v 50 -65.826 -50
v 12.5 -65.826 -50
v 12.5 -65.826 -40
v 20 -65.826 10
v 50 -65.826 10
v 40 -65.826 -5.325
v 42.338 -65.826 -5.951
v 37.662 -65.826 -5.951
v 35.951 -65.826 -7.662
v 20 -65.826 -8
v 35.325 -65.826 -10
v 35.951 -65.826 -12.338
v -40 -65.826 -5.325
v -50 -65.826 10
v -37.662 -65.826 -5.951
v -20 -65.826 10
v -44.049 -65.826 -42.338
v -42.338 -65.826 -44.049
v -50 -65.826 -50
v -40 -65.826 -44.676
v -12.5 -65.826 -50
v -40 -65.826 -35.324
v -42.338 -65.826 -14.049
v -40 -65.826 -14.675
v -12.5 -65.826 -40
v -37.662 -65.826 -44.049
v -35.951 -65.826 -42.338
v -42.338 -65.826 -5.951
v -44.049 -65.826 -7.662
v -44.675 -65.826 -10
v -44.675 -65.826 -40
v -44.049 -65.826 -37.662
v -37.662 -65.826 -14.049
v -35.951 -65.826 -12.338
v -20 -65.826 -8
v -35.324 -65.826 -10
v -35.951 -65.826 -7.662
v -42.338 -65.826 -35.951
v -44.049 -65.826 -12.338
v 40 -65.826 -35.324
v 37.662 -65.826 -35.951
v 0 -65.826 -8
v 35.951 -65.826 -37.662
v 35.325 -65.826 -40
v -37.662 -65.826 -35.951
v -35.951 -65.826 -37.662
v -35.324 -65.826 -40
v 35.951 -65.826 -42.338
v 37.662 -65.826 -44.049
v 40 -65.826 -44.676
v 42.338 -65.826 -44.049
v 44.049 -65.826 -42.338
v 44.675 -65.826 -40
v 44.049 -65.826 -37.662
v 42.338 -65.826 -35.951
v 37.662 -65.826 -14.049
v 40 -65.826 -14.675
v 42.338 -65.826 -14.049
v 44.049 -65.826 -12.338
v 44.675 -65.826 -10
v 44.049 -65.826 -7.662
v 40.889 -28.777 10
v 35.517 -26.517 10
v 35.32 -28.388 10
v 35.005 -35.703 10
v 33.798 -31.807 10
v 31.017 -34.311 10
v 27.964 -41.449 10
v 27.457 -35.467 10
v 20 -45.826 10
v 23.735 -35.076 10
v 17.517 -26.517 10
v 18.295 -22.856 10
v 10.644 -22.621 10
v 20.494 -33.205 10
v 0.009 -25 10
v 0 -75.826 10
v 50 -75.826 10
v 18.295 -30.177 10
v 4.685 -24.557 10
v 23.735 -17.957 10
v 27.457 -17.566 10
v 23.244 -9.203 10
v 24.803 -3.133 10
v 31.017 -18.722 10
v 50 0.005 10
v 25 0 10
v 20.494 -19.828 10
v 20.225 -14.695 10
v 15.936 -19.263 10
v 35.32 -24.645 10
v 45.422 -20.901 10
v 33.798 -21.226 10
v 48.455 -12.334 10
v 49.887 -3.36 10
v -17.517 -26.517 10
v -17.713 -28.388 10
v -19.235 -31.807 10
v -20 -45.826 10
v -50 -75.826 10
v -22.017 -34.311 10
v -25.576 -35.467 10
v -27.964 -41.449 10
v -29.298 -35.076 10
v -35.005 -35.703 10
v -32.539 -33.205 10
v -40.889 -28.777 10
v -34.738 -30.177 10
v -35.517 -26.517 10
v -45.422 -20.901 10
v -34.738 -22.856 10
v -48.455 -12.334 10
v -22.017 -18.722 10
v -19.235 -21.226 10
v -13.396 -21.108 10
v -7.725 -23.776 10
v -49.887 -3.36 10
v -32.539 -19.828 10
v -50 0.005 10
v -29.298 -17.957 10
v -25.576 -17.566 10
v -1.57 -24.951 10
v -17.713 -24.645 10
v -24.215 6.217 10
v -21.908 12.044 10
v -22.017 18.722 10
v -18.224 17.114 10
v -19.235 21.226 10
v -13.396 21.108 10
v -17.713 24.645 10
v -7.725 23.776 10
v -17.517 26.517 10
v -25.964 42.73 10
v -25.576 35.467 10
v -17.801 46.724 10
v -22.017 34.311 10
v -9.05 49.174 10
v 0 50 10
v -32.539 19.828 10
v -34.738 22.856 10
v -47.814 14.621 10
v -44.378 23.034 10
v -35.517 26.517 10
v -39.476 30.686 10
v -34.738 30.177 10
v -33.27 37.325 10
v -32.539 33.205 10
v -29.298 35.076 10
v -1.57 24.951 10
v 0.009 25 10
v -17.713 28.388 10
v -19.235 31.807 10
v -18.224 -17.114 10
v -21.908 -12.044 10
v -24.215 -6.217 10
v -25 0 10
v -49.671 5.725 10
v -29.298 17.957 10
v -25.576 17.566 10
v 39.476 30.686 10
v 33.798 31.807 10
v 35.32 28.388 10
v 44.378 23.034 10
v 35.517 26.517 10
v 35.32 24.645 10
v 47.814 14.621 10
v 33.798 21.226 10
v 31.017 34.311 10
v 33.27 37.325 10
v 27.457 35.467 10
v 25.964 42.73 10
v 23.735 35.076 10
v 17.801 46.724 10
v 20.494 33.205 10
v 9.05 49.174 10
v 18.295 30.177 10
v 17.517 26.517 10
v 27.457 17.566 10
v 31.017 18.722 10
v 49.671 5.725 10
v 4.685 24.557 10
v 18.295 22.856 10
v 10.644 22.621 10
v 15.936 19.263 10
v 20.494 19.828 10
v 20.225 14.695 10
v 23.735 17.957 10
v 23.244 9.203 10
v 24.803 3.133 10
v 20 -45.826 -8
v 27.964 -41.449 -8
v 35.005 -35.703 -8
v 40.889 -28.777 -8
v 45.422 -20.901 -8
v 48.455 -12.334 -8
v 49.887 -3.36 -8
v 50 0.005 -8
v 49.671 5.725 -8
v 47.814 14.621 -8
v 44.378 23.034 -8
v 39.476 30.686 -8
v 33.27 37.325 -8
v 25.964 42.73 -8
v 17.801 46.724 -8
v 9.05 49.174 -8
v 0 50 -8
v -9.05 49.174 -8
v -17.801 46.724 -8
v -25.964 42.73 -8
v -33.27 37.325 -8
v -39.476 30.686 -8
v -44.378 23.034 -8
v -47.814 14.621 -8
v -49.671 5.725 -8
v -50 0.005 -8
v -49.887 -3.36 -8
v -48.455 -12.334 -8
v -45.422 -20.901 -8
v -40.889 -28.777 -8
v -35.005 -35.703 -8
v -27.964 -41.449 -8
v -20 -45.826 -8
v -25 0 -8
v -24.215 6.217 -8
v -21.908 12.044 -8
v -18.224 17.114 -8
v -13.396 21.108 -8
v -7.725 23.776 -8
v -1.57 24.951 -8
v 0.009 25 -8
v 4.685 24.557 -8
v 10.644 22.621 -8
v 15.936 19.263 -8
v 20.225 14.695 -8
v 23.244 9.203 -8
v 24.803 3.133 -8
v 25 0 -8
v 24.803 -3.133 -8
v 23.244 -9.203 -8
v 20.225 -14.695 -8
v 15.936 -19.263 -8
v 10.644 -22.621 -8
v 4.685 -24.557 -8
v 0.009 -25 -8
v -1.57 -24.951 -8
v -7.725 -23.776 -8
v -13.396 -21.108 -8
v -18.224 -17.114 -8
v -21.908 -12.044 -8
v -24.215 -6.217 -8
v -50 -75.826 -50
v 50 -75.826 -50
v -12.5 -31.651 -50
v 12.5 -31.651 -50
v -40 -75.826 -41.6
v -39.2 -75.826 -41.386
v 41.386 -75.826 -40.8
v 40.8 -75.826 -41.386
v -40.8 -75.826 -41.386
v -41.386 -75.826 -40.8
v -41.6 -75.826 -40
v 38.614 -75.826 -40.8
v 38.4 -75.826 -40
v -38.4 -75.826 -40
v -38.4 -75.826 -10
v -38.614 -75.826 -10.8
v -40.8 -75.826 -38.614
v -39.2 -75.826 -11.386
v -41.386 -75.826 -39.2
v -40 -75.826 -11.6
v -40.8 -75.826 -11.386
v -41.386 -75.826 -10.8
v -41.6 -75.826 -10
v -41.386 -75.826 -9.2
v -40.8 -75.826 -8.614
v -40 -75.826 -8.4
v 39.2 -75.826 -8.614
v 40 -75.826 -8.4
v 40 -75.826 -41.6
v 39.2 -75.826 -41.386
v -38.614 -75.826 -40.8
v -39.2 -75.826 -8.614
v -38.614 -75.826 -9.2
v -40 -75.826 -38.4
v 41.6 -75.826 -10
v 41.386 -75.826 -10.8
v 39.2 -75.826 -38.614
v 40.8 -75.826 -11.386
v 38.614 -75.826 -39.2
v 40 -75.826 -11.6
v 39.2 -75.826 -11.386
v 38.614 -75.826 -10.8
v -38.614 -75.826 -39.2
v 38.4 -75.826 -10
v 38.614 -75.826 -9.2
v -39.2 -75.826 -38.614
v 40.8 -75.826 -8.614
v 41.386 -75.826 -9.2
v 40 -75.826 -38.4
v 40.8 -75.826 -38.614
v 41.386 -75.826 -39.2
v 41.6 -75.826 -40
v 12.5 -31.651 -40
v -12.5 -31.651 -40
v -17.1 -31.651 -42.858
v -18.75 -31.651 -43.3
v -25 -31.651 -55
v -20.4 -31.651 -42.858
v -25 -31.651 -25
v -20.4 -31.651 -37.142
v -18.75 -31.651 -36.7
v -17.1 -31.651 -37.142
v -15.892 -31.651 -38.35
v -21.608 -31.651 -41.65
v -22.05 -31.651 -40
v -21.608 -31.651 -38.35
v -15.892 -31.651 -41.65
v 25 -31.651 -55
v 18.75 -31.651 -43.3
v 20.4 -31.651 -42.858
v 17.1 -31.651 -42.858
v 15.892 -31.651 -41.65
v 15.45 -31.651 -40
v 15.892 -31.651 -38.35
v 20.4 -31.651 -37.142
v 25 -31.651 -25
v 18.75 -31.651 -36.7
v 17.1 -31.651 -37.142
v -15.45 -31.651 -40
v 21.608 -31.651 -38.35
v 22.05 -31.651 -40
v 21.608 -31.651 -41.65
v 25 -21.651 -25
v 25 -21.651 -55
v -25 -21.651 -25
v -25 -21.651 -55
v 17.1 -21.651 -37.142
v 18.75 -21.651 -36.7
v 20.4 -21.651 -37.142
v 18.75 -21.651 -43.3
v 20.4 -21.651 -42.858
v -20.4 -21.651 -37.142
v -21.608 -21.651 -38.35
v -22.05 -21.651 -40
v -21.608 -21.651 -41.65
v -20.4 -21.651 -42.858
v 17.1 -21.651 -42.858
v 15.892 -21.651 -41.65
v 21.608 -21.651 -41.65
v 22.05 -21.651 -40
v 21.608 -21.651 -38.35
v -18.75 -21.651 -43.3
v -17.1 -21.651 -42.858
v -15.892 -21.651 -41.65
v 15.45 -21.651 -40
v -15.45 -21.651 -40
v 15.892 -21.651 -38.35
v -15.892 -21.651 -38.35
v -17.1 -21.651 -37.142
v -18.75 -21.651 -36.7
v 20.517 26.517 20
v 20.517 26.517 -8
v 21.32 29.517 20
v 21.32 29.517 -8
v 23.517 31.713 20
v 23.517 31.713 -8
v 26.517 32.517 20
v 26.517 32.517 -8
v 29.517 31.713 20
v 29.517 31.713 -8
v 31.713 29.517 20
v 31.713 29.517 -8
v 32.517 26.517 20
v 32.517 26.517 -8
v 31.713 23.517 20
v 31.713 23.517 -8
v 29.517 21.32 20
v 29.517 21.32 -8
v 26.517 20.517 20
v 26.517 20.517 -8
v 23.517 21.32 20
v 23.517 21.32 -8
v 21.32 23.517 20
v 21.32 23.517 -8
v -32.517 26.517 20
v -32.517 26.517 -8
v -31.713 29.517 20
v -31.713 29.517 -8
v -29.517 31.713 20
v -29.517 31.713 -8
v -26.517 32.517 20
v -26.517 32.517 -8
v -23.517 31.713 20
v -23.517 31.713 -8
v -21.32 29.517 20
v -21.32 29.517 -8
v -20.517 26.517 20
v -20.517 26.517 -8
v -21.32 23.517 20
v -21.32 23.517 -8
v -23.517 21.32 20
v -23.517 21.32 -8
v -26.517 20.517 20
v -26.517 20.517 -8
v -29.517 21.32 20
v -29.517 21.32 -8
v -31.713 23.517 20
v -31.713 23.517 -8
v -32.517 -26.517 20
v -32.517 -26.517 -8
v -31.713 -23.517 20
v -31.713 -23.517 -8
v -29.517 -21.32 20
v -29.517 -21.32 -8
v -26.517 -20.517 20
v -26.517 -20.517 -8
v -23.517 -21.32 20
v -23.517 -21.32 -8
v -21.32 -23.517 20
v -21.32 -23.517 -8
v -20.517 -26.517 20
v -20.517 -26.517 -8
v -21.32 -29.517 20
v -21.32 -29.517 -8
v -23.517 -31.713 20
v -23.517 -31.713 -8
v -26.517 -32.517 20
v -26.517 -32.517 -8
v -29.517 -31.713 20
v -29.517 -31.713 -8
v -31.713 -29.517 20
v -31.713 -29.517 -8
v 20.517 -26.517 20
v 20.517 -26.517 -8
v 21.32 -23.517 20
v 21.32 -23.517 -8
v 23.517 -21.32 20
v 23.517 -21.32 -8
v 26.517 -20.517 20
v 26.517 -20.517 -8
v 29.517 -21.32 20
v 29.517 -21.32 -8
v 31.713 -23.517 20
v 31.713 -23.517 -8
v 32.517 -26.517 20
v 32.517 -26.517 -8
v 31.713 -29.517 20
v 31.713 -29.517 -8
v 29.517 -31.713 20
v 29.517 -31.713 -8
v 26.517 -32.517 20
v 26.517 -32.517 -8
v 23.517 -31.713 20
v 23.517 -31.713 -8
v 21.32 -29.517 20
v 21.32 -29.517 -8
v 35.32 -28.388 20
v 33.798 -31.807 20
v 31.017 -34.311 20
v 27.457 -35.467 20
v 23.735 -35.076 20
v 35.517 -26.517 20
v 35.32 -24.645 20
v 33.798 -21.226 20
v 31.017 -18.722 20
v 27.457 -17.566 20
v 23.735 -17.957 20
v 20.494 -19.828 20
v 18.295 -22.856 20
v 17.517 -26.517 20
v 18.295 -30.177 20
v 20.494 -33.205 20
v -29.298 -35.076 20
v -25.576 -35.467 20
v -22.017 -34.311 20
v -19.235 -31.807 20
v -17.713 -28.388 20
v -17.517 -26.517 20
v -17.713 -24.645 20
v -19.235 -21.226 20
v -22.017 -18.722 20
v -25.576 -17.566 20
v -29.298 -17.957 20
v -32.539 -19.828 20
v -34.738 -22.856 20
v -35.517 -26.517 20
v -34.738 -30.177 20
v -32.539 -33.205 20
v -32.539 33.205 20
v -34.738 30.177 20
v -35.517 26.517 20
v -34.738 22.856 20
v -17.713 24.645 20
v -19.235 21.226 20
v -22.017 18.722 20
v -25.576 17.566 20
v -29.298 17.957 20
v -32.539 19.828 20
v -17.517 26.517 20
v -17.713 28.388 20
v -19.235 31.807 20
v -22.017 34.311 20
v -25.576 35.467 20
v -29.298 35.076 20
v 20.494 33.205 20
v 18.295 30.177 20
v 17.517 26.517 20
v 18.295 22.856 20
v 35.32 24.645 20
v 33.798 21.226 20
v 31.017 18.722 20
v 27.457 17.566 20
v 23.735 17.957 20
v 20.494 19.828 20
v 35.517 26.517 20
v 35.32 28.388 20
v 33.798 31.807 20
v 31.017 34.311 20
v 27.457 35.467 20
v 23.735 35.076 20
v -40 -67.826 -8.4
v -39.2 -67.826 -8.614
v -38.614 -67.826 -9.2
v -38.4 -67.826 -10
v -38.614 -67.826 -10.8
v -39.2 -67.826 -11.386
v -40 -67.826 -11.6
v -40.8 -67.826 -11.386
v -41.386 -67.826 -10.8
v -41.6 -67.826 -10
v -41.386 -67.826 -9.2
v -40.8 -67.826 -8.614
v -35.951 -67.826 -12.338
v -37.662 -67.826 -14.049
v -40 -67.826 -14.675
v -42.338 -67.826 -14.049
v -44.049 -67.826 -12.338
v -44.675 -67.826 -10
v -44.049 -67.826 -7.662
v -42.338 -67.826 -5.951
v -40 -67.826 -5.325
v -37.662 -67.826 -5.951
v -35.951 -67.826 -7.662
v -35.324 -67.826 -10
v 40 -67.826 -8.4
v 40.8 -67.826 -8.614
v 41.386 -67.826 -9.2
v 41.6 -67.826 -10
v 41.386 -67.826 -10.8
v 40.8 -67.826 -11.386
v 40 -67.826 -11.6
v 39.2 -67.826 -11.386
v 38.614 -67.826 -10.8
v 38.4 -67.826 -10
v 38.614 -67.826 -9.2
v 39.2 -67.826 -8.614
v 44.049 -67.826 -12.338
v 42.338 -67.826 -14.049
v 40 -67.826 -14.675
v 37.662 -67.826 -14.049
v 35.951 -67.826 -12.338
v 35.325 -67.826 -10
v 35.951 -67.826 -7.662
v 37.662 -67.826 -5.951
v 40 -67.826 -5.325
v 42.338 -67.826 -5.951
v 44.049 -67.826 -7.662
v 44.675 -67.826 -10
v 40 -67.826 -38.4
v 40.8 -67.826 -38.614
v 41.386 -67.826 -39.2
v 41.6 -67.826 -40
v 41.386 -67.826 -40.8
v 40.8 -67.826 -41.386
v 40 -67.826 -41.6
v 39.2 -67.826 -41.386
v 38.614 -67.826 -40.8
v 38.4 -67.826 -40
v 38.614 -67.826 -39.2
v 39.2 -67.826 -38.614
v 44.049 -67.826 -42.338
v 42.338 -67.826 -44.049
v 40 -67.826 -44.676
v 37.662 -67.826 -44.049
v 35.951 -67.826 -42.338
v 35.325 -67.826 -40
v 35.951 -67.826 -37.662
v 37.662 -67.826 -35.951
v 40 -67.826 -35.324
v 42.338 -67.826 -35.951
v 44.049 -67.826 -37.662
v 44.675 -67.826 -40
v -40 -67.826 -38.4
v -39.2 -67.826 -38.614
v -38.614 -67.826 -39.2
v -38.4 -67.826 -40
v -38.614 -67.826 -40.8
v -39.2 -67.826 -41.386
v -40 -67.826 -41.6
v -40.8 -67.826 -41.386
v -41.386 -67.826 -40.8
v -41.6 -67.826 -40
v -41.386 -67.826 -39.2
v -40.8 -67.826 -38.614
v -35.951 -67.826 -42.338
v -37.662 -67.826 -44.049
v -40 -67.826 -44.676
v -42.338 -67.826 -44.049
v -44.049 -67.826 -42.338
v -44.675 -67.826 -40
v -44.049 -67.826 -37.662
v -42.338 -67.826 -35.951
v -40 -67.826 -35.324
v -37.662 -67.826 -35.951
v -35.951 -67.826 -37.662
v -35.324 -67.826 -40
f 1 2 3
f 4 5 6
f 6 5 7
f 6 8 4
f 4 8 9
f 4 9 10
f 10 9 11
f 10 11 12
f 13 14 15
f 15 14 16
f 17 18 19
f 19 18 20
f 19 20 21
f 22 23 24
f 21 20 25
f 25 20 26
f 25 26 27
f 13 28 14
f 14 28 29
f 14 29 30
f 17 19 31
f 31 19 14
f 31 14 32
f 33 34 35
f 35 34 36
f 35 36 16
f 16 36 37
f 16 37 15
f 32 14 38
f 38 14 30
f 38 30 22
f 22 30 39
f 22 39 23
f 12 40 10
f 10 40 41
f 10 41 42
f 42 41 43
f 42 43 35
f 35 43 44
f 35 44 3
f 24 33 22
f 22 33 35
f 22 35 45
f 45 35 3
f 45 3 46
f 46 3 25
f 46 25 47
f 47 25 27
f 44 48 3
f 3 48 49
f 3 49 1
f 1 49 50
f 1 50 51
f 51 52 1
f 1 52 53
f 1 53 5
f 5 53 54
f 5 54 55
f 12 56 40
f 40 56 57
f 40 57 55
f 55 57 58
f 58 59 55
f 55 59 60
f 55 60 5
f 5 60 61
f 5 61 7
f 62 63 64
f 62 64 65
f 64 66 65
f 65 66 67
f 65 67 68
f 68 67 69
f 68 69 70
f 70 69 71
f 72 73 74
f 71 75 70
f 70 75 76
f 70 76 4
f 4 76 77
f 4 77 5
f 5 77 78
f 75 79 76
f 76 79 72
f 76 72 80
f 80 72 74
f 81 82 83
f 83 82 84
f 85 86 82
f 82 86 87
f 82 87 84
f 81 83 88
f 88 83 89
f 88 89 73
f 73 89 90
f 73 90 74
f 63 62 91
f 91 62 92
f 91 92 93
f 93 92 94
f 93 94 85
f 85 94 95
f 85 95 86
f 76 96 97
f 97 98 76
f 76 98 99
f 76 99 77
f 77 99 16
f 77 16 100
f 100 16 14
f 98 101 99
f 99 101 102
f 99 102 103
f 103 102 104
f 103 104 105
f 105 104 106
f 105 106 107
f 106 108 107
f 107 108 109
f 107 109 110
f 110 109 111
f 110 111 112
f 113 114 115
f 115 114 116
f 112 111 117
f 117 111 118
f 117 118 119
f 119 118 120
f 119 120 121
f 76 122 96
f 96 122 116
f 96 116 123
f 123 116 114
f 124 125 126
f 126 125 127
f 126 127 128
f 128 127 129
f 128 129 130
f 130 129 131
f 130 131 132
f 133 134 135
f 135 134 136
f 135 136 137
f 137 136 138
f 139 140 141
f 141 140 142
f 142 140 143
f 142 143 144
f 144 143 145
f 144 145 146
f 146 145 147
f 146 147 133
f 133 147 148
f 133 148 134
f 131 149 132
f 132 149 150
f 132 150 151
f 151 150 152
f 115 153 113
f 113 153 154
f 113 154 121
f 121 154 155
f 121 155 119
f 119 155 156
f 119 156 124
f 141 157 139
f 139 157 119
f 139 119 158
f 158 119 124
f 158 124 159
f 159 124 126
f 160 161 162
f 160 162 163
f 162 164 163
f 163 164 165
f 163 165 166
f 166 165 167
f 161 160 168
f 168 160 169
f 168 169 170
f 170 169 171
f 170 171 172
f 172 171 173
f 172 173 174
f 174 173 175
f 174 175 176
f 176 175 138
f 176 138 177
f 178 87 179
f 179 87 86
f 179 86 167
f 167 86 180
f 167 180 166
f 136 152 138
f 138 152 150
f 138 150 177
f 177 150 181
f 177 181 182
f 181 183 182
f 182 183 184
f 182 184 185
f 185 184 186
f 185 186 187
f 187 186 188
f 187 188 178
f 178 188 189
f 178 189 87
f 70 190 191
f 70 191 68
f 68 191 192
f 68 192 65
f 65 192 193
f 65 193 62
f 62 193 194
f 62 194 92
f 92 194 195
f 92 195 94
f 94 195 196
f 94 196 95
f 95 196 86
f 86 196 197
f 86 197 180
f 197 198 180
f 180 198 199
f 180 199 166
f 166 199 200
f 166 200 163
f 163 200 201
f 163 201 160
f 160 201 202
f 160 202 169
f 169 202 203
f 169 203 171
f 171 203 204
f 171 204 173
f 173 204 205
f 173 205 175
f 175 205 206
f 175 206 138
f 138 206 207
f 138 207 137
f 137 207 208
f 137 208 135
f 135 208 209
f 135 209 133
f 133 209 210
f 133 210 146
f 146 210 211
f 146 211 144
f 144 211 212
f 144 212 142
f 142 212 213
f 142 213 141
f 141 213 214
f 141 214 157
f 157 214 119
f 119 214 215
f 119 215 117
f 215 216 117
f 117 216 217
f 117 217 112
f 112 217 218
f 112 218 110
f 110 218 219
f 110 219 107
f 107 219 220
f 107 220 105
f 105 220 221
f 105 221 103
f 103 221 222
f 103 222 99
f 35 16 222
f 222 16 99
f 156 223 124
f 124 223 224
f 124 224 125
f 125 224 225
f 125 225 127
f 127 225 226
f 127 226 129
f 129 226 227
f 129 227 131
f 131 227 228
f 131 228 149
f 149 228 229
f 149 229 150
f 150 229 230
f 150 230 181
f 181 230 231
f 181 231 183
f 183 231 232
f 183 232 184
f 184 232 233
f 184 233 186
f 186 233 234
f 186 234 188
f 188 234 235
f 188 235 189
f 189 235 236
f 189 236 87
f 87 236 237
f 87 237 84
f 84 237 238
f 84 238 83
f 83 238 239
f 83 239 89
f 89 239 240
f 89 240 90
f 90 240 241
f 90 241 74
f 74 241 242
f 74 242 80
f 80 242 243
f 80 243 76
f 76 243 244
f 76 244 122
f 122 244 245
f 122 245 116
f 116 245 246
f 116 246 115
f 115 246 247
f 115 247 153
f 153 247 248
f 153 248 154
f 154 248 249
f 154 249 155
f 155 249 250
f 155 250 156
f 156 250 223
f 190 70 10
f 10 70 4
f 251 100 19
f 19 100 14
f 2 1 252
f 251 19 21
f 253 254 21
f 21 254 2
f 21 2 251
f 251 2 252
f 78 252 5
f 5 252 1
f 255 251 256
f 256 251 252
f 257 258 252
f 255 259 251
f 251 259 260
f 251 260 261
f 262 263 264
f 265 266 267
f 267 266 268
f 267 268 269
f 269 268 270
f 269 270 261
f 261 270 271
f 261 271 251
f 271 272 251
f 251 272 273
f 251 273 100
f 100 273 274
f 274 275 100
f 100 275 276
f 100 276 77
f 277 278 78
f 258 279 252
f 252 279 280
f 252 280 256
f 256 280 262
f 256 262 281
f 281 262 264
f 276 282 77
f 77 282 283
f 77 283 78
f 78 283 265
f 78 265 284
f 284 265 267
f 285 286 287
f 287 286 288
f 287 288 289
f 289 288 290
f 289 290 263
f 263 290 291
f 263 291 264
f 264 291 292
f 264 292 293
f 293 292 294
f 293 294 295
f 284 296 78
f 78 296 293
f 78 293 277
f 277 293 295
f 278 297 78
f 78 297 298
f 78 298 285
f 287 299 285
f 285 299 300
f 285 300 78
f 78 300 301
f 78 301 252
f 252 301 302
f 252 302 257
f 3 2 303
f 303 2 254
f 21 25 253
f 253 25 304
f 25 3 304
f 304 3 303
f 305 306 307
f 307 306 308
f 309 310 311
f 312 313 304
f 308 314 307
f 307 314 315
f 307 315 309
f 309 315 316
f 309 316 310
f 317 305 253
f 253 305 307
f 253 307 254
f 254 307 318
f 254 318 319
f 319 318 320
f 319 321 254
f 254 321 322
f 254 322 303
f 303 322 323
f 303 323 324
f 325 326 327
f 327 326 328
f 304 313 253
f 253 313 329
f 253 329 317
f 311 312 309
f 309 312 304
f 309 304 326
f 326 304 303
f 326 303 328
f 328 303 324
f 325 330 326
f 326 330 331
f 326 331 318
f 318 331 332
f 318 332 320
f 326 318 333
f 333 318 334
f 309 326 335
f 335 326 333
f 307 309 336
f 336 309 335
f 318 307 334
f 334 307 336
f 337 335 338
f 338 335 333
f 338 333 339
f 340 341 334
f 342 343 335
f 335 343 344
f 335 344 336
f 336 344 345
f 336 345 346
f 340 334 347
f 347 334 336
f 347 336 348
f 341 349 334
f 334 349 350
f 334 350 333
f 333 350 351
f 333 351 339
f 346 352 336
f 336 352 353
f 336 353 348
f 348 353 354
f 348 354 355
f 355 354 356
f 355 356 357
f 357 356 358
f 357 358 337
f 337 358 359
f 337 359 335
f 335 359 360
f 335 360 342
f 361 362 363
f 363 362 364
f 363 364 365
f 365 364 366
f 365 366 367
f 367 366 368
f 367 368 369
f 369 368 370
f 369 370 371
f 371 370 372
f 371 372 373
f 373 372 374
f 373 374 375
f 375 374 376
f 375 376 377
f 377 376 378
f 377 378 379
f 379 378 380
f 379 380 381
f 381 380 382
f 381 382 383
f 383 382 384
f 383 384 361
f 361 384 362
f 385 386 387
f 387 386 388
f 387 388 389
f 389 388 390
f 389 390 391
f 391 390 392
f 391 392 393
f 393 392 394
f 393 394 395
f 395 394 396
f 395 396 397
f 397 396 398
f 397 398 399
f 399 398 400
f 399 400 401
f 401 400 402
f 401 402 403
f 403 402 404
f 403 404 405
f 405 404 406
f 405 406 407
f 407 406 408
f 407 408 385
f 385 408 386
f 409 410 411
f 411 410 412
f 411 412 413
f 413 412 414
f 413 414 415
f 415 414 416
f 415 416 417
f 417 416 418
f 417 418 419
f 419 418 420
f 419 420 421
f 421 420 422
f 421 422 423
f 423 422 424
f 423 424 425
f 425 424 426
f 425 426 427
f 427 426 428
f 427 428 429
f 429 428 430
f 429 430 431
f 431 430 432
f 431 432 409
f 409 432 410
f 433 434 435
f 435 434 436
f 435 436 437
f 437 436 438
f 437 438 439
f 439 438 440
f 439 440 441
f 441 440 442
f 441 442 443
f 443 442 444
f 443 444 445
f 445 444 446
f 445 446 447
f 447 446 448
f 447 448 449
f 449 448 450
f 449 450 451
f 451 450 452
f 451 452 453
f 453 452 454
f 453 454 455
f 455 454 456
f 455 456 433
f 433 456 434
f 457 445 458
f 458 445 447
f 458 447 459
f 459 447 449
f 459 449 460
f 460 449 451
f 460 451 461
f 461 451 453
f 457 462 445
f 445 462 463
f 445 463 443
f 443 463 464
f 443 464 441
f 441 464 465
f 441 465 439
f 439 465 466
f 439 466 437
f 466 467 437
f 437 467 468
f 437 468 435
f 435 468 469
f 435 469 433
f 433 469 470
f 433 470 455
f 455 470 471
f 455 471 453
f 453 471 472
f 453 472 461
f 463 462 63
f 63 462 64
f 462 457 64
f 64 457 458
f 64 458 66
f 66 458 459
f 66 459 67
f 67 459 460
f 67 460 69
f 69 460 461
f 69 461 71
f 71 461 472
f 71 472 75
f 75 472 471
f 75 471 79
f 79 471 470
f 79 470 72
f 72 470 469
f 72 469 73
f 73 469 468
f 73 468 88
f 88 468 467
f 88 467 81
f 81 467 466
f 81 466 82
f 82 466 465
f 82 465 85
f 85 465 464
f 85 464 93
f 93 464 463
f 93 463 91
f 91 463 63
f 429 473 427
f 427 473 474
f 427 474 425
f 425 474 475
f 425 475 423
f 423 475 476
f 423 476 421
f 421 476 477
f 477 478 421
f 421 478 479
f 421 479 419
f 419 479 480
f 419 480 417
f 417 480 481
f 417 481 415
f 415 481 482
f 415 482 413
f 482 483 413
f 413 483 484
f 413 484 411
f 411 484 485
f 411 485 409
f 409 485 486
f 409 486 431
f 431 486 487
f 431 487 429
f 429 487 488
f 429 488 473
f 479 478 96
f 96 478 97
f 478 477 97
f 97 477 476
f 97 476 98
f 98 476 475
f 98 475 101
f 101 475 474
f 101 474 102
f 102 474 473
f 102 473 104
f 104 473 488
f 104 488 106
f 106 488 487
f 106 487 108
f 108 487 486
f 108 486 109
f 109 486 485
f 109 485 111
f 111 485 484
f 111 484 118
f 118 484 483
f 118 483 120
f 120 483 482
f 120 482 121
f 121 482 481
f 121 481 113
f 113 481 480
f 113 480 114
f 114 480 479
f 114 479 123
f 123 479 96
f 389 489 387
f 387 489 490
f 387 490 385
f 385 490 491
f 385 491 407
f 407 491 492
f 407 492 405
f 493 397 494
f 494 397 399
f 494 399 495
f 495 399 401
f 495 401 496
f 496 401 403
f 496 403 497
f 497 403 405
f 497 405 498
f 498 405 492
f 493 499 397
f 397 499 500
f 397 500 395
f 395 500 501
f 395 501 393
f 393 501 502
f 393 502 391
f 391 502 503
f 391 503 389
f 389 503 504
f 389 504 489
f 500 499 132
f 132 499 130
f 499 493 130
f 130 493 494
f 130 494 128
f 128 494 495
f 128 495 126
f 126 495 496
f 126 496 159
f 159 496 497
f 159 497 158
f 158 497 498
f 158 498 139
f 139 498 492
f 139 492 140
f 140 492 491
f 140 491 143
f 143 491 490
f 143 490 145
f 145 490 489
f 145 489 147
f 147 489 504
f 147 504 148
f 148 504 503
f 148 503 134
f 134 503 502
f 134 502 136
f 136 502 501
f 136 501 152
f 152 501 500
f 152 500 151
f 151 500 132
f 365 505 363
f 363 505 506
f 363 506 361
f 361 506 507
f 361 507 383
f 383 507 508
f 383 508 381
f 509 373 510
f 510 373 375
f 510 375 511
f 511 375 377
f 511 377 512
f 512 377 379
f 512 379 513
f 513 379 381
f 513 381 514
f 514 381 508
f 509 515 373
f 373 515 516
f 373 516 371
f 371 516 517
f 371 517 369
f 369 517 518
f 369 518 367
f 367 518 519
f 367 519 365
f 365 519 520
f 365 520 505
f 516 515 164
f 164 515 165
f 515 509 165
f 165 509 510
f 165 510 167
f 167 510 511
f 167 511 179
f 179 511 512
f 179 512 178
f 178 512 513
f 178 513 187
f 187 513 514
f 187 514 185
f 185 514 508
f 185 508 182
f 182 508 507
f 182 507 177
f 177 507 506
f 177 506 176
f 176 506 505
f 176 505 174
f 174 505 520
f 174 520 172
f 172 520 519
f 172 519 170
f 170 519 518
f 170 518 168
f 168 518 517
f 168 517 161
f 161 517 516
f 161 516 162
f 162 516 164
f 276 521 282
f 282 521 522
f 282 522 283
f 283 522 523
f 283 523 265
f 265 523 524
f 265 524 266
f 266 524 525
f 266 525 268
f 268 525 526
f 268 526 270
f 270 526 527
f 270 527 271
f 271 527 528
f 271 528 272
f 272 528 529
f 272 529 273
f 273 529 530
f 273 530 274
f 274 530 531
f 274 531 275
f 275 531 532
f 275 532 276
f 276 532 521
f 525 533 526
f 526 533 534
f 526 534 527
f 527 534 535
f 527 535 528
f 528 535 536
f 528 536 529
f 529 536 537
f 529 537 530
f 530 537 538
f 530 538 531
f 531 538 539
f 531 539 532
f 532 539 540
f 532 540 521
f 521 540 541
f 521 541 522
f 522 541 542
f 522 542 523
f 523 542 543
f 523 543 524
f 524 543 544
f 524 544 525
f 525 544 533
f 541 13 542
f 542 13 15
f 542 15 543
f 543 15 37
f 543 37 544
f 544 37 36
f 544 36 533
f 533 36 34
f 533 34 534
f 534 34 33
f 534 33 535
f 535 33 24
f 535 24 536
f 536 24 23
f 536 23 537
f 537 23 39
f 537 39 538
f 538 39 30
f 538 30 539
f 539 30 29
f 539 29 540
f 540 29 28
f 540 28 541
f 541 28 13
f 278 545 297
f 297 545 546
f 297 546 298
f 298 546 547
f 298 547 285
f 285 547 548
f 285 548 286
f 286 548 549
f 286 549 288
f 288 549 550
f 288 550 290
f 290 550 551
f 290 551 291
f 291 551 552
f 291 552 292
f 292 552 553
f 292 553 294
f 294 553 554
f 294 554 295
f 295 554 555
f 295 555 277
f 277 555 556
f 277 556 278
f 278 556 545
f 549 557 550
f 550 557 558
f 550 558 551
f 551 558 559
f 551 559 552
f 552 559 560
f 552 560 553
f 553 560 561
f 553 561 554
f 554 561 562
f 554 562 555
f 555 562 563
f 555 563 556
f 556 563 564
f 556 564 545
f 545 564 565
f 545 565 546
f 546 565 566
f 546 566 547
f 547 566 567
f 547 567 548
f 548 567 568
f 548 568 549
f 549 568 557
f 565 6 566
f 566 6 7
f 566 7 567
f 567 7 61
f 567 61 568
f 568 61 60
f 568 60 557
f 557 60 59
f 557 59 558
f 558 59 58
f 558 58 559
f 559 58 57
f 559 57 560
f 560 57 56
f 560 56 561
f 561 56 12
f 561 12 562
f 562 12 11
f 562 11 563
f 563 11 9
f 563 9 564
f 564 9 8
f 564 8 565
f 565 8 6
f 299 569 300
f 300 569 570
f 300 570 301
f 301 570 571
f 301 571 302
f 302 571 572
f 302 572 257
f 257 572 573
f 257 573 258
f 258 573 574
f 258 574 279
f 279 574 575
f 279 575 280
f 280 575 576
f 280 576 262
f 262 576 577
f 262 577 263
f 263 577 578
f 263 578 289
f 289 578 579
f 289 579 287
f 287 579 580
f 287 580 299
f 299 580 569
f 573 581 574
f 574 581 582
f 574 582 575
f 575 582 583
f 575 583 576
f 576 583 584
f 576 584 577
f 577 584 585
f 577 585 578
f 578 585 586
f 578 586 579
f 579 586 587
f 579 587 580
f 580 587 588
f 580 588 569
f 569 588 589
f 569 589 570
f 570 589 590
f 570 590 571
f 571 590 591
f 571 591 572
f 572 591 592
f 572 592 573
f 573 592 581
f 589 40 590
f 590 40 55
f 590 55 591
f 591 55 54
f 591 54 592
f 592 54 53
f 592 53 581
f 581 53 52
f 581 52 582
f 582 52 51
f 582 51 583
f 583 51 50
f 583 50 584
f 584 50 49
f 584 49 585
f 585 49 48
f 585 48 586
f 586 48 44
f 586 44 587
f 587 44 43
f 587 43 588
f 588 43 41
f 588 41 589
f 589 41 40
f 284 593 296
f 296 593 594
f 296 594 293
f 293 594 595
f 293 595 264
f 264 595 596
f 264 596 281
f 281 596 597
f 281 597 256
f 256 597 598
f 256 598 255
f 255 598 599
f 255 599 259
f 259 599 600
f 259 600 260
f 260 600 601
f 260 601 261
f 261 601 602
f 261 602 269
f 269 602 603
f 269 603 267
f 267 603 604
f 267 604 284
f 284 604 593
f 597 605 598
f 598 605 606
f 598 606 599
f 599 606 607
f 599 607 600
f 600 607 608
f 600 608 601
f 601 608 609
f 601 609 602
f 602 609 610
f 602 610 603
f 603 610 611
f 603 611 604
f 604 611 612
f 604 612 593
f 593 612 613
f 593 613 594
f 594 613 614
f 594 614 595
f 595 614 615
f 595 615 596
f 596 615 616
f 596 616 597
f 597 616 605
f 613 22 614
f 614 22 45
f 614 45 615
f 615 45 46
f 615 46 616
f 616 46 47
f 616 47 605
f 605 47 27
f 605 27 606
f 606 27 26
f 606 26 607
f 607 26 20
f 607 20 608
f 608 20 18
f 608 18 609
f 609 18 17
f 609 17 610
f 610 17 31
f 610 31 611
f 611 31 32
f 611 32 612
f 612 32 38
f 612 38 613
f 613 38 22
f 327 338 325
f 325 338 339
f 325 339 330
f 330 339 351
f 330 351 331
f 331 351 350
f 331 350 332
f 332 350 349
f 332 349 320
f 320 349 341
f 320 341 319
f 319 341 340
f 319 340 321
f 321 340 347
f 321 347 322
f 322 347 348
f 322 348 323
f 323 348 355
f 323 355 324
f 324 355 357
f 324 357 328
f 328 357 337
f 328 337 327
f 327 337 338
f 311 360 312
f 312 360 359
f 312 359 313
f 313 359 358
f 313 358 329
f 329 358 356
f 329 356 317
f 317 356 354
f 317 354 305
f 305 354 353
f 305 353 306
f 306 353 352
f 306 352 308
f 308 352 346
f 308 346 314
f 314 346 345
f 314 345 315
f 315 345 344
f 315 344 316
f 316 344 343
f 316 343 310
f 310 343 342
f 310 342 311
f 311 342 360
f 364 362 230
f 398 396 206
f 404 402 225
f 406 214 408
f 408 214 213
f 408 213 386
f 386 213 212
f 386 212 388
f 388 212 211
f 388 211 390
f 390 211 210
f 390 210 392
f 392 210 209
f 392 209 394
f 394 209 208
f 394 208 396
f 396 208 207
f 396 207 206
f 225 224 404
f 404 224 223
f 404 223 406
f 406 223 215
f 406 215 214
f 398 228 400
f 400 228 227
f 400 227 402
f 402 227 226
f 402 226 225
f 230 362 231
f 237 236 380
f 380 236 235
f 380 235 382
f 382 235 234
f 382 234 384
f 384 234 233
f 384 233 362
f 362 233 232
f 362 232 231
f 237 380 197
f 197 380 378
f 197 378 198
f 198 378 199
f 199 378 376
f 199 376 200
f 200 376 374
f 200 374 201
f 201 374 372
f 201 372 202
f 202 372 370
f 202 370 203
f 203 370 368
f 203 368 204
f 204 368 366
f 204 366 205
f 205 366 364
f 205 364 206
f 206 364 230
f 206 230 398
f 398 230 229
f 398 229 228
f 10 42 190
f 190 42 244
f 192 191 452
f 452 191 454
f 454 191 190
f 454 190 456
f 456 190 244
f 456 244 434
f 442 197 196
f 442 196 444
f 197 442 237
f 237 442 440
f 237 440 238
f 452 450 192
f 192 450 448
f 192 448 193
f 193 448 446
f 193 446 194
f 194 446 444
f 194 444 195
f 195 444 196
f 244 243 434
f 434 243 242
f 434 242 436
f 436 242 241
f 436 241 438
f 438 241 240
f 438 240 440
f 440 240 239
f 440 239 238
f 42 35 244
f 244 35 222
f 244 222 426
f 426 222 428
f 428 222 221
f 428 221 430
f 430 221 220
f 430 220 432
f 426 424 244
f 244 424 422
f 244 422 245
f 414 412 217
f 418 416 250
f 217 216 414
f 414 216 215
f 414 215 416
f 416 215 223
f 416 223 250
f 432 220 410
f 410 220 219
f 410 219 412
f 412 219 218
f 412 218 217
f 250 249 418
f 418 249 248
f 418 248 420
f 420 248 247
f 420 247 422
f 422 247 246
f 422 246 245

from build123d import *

# Parameters (mm, degrees)
SKETCH1_R                                    = 24.999999999999996
BOSS_EXTRUDE1_DEPTH                          = 10
BOSS_EXTRUDE2_DEPTH                          = 10
BOSS_EXTRUDE3_DEPTH                          = 10
BOSS_EXTRUDE4_DEPTH                          = 10
CUT_EXTRUDE1_REACH                           = 108.182
SKETCH5_R                                    = 6.000000000000003
SKETCH5_R_2                                  = 5.999999999999995
SKETCH5_R_3                                  = 5.999999999999999
SKETCH6_R                                    = 8.999999999999996
SKETCH6_R_2                                  = 5.999999999999995
SKETCH6_R_3                                  = 5.999999999999988
SKETCH6_R_4                                  = 9
SKETCH6_R_5                                  = 5.999999999999991
BOSS_EXTRUDE5_DEPTH                          = 10
CBORE_FOR_M3_HEX_HEAD_CAP_SCREW1_D           = 3.2
CBORE_FOR_M3_HEX_HEAD_CAP_SCREW1_CBORE_D     = 9.351
CBORE_FOR_M3_HEX_HEAD_CAP_SCREW1_CBORE_DEPTH = 2
CUT_EXTRUDE2_REACH                           = 105.242
SKETCH12_R                                   = 3.3000000000000003
CIRPATTERN1_COUNT                            = 4
BOSS_EXTRUDE6_START                          = 8
SKETCH13_R                                   = 6.000000000000003
SKETCH13_R_2                                 = 5.999999999999995
SKETCH13_R_3                                 = 5.999999999999999
SKETCH13_R_4                                 = 25
BOSS_EXTRUDE6_DEPTH                          = 8


with BuildPart() as part:
    # Sketch1 → Boss-Extrude1 (new body)
    # profile 1 of 3: a face of its own
    with BuildSketch(Plane.XY):
        with BuildLine():
            ThreePointArc((50, 0), (-27.386127875258286, 41.83300132670379), (-20.00000000000004, -45.82575694955838))
            Line((-20.000000000000004, -45.82575694955839), (20.000000000000004, -45.82575694955839))
            ThreePointArc((19.999999999999986, -45.825756949558404), (41.83300132670376, -27.38612787525834), (50, -1.225e-14))
        make_face()
        Circle(SKETCH1_R, mode=Mode.SUBTRACT)
    # profile 2 of 3: a face of its own
    with BuildSketch(Plane.XY):
        with BuildLine():
            ThreePointArc((19.999999999999986, -45.825756949558404), (-9.18e-15, -50), (-20.00000000000004, -45.82575694955838))
            Line((-20.000000000000004, -45.82575694955839), (-20, -65.82575694955838))
            Line((-20, -65.82575694955838), (20, -65.82575694955838))
            Line((20, -65.82575694955838), (20.000000000000004, -45.82575694955839))
        make_face()
    # profile 3 of 3: a face of its own
    with BuildSketch(Plane.XY):
        with BuildLine():
            Line((20.000000000000004, -45.82575694955839), (-20.000000000000004, -45.82575694955839))
            ThreePointArc((-20.00000000000004, -45.82575694955838), (-9.18e-15, -50), (19.999999999999986, -45.825756949558404))
        make_face()
    extrude(amount=BOSS_EXTRUDE1_DEPTH)

    # Sketch2 → Boss-Extrude2 (add)
    with BuildSketch(Plane.XZ.offset(65.82575694955838)):
        Polygon((-50, 10), (50, 10), (50.00000000000002, -49.99999999999999), (-49.999999999999986, -49.99999999999999), align=None)
    extrude(amount=BOSS_EXTRUDE2_DEPTH)

    # Sketch3 → Boss-Extrude3 (add)
    with BuildSketch(Plane(origin=(0, 0, -49.99999999999999), x_dir=(-1, 0, 0), z_dir=(0, 0, -1))):
        Polygon((-12.499999999999993, -75.82575694955838), (12.500000000000007, -75.82575694955838), (12.5, -21.65063509461097), (-12.5, -21.65063509461097), align=None)
    extrude(amount=-BOSS_EXTRUDE3_DEPTH)

    # Sketch4 → Boss-Extrude4 (add)
    with BuildSketch(Plane(origin=(0, -21.65063509461097, 0), x_dir=(1, 0, 0), z_dir=(0, 1, 0))):
        Polygon((-25, 24.999999999999996), (-24.999999999999996, 54.99999999999999), (25.000000000000007, 55), (25, 24.999999999999996), align=None)
    extrude(amount=-BOSS_EXTRUDE4_DEPTH)

    # Sketch5 → Cut-Extrude1 (cut, up to next)
    with BuildSketch(Plane(origin=(0, 0, 0), x_dir=(-1, 0, 0), z_dir=(0, 0, -1)), mode=Mode.PRIVATE) as cut_extrude1_sk1:
        with Locations((-26.516504294495405, 26.51650429449565)):
            Circle(SKETCH5_R)
    cut_extrude1_tool1 = extrude(cut_extrude1_sk1.sketch, amount=-CUT_EXTRUDE1_REACH, mode=Mode.PRIVATE) & part.part
    # Sketch5 → Cut-Extrude1 (cut, up to next)
    with BuildSketch(Plane(origin=(0, 0, 0), x_dir=(-1, 0, 0), z_dir=(0, 0, -1)), mode=Mode.PRIVATE) as cut_extrude1_sk2:
        with Locations((26.516504294495764, 26.5165042944953)):
            Circle(SKETCH5_R_2)
    cut_extrude1_tool2 = extrude(cut_extrude1_sk2.sketch, amount=-CUT_EXTRUDE1_REACH, mode=Mode.PRIVATE) & part.part
    # Sketch5 → Cut-Extrude1 (cut, up to next)
    with BuildSketch(Plane(origin=(0, 0, 0), x_dir=(-1, 0, 0), z_dir=(0, 0, -1)), mode=Mode.PRIVATE) as cut_extrude1_sk3:
        with Locations((26.516504294495217, -26.516504294495856)):
            Circle(SKETCH5_R)
    cut_extrude1_tool3 = extrude(cut_extrude1_sk3.sketch, amount=-CUT_EXTRUDE1_REACH, mode=Mode.PRIVATE) & part.part
    # Sketch5 → Cut-Extrude1 (cut, up to next)
    with BuildSketch(Plane(origin=(0, 0, 0), x_dir=(-1, 0, 0), z_dir=(0, 0, -1)), mode=Mode.PRIVATE) as cut_extrude1_sk4:
        with Locations((-26.516504294495945, -26.516504294495114)):
            Circle(SKETCH5_R_3)
    cut_extrude1_tool4 = extrude(cut_extrude1_sk4.sketch, amount=-CUT_EXTRUDE1_REACH, mode=Mode.PRIVATE) & part.part
    add(cut_extrude1_tool1.solids().sort_by_distance((26.516504, 26.516504, 0))[0], mode=Mode.SUBTRACT)
    add(cut_extrude1_tool2.solids().sort_by_distance((-26.516504, 26.516504, 0))[0], mode=Mode.SUBTRACT)
    add(cut_extrude1_tool3.solids().sort_by_distance((-26.516504, -26.516504, 0))[0], mode=Mode.SUBTRACT)
    add(cut_extrude1_tool4.solids().sort_by_distance((26.516504, -26.516504, 0))[0], mode=Mode.SUBTRACT)

    # Sketch6 → Boss-Extrude5 (add)
    # profile 1 of 4: a face of its own
    with BuildSketch(Plane.XY.offset(10)):
        with Locations((-26.516504294495764, 26.5165042944953)):
            Circle(SKETCH6_R)
        with Locations(Location((-26.516504294495764, 26.5165042944953, 0), (0, 0, 180))):
            Circle(SKETCH6_R_2, mode=Mode.SUBTRACT)
    # profile 2 of 4: a face of its own
    with BuildSketch(Plane.XY.offset(10)):
        with Locations((26.516504294495398, 26.51650429449567)):
            Circle(SKETCH6_R)
        with Locations(Location((26.516504294495398, 26.51650429449567, 0), (0, 0, 180))):
            Circle(SKETCH6_R_3, mode=Mode.SUBTRACT)
    # profile 3 of 4: a face of its own
    with BuildSketch(Plane.XY.offset(10)):
        with Locations((26.516504294495572, -26.51650429449549)):
            Circle(SKETCH6_R_4)
        with Locations(Location((26.516504294495572, -26.51650429449549, 0), (0, 0, 180))):
            Circle(SKETCH6_R_5, mode=Mode.SUBTRACT)
    # profile 4 of 4: a face of its own
    with BuildSketch(Plane.XY.offset(10)):
        with Locations((-26.516504294495576, -26.516504294495487)):
            Circle(SKETCH6_R)
        with Locations(Location((-26.516504294495576, -26.516504294495487, 0), (0, 0, 180))):
            Circle(SKETCH6_R_2, mode=Mode.SUBTRACT)
    boss_extrude5 = extrude(amount=BOSS_EXTRUDE5_DEPTH)

    # CBORE for M3 Hex Head Cap Screw1 (through all)
    with Locations(Plane(origin=(0, -65.82575694955838, 0), x_dir=(1, 0, 0), z_dir=(0, 1, 0))):
        with Locations((-40, 40), (40, 40), (40, 10), (-40, 10)):
            CounterBoreHole(CBORE_FOR_M3_HEX_HEAD_CAP_SCREW1_D / 2, CBORE_FOR_M3_HEX_HEAD_CAP_SCREW1_CBORE_D / 2, CBORE_FOR_M3_HEX_HEAD_CAP_SCREW1_CBORE_DEPTH)

    # Sketch12 → Cut-Extrude2 (cut, up to next)
    with BuildSketch(Plane(origin=(0, -21.65063509461097, 0), x_dir=(1, 0, 0), z_dir=(0, 1, 0)), mode=Mode.PRIVATE) as cut_extrude2_sk1:
        with Locations(Location((-18.75, 39.99999999999999, 0), (0, 0, 270))):
            Circle(SKETCH12_R)
    cut_extrude2_tool1 = extrude(cut_extrude2_sk1.sketch, amount=-CUT_EXTRUDE2_REACH, mode=Mode.PRIVATE) & part.part
    # Sketch12 → Cut-Extrude2 (cut, up to next)
    with BuildSketch(Plane(origin=(0, -21.65063509461097, 0), x_dir=(1, 0, 0), z_dir=(0, 1, 0)), mode=Mode.PRIVATE) as cut_extrude2_sk2:
        with Locations(Location((18.750000000000004, 39.99999999999999, 0), (0, 0, 270))):
            Circle(SKETCH12_R)
    cut_extrude2_tool2 = extrude(cut_extrude2_sk2.sketch, amount=-CUT_EXTRUDE2_REACH, mode=Mode.PRIVATE) & part.part
    add(cut_extrude2_tool1.solids().sort_by_distance((-18.75, -21.650635, -40))[0], mode=Mode.SUBTRACT)
    add(cut_extrude2_tool2.solids().sort_by_distance((18.75, -21.650635, -40))[0], mode=Mode.SUBTRACT)

    # CirPattern1: Boss-Extrude5 ×4 about axis
    cirpattern1_axis = Axis((0, 0, 10), (0, 0, -1))
    for i in range(1, CIRPATTERN1_COUNT):
        add(boss_extrude5.rotate(cirpattern1_axis, i * 360 / CIRPATTERN1_COUNT))

    # Sketch13 → Boss-Extrude6 (add)
    with BuildSketch(Plane(origin=(0, 0, 0), x_dir=(-1, 0, 0), z_dir=(0, 0, -1)).offset(BOSS_EXTRUDE6_START)):
        with BuildLine():
            Line((-20.00000000000004, -45.825756949558375), (-20, -65.82575694955838))
            Line((-20, -65.82575694955838), (20, -65.82575694955838))
            Line((20, -65.82575694955838), (19.999999999999982, -45.8257569495584))
            ThreePointArc((19.999999999999982, -45.8257569495584), (3.637e-14, 49.99999999999999), (-20.00000000000004, -45.825756949558375))
        make_face()
        with Locations((26.516504294495217, -26.516504294495856)):
            Circle(SKETCH13_R, mode=Mode.SUBTRACT)
        with Locations((26.516504294495764, 26.5165042944953)):
            Circle(SKETCH13_R_2, mode=Mode.SUBTRACT)
        with Locations((-26.516504294495945, -26.516504294495114)):
            Circle(SKETCH13_R_3, mode=Mode.SUBTRACT)
        with Locations((-26.516504294495405, 26.51650429449565)):
            Circle(SKETCH13_R, mode=Mode.SUBTRACT)
        Circle(SKETCH13_R_4, mode=Mode.SUBTRACT)
    extrude(amount=-BOSS_EXTRUDE6_DEPTH)


solid = part.part
